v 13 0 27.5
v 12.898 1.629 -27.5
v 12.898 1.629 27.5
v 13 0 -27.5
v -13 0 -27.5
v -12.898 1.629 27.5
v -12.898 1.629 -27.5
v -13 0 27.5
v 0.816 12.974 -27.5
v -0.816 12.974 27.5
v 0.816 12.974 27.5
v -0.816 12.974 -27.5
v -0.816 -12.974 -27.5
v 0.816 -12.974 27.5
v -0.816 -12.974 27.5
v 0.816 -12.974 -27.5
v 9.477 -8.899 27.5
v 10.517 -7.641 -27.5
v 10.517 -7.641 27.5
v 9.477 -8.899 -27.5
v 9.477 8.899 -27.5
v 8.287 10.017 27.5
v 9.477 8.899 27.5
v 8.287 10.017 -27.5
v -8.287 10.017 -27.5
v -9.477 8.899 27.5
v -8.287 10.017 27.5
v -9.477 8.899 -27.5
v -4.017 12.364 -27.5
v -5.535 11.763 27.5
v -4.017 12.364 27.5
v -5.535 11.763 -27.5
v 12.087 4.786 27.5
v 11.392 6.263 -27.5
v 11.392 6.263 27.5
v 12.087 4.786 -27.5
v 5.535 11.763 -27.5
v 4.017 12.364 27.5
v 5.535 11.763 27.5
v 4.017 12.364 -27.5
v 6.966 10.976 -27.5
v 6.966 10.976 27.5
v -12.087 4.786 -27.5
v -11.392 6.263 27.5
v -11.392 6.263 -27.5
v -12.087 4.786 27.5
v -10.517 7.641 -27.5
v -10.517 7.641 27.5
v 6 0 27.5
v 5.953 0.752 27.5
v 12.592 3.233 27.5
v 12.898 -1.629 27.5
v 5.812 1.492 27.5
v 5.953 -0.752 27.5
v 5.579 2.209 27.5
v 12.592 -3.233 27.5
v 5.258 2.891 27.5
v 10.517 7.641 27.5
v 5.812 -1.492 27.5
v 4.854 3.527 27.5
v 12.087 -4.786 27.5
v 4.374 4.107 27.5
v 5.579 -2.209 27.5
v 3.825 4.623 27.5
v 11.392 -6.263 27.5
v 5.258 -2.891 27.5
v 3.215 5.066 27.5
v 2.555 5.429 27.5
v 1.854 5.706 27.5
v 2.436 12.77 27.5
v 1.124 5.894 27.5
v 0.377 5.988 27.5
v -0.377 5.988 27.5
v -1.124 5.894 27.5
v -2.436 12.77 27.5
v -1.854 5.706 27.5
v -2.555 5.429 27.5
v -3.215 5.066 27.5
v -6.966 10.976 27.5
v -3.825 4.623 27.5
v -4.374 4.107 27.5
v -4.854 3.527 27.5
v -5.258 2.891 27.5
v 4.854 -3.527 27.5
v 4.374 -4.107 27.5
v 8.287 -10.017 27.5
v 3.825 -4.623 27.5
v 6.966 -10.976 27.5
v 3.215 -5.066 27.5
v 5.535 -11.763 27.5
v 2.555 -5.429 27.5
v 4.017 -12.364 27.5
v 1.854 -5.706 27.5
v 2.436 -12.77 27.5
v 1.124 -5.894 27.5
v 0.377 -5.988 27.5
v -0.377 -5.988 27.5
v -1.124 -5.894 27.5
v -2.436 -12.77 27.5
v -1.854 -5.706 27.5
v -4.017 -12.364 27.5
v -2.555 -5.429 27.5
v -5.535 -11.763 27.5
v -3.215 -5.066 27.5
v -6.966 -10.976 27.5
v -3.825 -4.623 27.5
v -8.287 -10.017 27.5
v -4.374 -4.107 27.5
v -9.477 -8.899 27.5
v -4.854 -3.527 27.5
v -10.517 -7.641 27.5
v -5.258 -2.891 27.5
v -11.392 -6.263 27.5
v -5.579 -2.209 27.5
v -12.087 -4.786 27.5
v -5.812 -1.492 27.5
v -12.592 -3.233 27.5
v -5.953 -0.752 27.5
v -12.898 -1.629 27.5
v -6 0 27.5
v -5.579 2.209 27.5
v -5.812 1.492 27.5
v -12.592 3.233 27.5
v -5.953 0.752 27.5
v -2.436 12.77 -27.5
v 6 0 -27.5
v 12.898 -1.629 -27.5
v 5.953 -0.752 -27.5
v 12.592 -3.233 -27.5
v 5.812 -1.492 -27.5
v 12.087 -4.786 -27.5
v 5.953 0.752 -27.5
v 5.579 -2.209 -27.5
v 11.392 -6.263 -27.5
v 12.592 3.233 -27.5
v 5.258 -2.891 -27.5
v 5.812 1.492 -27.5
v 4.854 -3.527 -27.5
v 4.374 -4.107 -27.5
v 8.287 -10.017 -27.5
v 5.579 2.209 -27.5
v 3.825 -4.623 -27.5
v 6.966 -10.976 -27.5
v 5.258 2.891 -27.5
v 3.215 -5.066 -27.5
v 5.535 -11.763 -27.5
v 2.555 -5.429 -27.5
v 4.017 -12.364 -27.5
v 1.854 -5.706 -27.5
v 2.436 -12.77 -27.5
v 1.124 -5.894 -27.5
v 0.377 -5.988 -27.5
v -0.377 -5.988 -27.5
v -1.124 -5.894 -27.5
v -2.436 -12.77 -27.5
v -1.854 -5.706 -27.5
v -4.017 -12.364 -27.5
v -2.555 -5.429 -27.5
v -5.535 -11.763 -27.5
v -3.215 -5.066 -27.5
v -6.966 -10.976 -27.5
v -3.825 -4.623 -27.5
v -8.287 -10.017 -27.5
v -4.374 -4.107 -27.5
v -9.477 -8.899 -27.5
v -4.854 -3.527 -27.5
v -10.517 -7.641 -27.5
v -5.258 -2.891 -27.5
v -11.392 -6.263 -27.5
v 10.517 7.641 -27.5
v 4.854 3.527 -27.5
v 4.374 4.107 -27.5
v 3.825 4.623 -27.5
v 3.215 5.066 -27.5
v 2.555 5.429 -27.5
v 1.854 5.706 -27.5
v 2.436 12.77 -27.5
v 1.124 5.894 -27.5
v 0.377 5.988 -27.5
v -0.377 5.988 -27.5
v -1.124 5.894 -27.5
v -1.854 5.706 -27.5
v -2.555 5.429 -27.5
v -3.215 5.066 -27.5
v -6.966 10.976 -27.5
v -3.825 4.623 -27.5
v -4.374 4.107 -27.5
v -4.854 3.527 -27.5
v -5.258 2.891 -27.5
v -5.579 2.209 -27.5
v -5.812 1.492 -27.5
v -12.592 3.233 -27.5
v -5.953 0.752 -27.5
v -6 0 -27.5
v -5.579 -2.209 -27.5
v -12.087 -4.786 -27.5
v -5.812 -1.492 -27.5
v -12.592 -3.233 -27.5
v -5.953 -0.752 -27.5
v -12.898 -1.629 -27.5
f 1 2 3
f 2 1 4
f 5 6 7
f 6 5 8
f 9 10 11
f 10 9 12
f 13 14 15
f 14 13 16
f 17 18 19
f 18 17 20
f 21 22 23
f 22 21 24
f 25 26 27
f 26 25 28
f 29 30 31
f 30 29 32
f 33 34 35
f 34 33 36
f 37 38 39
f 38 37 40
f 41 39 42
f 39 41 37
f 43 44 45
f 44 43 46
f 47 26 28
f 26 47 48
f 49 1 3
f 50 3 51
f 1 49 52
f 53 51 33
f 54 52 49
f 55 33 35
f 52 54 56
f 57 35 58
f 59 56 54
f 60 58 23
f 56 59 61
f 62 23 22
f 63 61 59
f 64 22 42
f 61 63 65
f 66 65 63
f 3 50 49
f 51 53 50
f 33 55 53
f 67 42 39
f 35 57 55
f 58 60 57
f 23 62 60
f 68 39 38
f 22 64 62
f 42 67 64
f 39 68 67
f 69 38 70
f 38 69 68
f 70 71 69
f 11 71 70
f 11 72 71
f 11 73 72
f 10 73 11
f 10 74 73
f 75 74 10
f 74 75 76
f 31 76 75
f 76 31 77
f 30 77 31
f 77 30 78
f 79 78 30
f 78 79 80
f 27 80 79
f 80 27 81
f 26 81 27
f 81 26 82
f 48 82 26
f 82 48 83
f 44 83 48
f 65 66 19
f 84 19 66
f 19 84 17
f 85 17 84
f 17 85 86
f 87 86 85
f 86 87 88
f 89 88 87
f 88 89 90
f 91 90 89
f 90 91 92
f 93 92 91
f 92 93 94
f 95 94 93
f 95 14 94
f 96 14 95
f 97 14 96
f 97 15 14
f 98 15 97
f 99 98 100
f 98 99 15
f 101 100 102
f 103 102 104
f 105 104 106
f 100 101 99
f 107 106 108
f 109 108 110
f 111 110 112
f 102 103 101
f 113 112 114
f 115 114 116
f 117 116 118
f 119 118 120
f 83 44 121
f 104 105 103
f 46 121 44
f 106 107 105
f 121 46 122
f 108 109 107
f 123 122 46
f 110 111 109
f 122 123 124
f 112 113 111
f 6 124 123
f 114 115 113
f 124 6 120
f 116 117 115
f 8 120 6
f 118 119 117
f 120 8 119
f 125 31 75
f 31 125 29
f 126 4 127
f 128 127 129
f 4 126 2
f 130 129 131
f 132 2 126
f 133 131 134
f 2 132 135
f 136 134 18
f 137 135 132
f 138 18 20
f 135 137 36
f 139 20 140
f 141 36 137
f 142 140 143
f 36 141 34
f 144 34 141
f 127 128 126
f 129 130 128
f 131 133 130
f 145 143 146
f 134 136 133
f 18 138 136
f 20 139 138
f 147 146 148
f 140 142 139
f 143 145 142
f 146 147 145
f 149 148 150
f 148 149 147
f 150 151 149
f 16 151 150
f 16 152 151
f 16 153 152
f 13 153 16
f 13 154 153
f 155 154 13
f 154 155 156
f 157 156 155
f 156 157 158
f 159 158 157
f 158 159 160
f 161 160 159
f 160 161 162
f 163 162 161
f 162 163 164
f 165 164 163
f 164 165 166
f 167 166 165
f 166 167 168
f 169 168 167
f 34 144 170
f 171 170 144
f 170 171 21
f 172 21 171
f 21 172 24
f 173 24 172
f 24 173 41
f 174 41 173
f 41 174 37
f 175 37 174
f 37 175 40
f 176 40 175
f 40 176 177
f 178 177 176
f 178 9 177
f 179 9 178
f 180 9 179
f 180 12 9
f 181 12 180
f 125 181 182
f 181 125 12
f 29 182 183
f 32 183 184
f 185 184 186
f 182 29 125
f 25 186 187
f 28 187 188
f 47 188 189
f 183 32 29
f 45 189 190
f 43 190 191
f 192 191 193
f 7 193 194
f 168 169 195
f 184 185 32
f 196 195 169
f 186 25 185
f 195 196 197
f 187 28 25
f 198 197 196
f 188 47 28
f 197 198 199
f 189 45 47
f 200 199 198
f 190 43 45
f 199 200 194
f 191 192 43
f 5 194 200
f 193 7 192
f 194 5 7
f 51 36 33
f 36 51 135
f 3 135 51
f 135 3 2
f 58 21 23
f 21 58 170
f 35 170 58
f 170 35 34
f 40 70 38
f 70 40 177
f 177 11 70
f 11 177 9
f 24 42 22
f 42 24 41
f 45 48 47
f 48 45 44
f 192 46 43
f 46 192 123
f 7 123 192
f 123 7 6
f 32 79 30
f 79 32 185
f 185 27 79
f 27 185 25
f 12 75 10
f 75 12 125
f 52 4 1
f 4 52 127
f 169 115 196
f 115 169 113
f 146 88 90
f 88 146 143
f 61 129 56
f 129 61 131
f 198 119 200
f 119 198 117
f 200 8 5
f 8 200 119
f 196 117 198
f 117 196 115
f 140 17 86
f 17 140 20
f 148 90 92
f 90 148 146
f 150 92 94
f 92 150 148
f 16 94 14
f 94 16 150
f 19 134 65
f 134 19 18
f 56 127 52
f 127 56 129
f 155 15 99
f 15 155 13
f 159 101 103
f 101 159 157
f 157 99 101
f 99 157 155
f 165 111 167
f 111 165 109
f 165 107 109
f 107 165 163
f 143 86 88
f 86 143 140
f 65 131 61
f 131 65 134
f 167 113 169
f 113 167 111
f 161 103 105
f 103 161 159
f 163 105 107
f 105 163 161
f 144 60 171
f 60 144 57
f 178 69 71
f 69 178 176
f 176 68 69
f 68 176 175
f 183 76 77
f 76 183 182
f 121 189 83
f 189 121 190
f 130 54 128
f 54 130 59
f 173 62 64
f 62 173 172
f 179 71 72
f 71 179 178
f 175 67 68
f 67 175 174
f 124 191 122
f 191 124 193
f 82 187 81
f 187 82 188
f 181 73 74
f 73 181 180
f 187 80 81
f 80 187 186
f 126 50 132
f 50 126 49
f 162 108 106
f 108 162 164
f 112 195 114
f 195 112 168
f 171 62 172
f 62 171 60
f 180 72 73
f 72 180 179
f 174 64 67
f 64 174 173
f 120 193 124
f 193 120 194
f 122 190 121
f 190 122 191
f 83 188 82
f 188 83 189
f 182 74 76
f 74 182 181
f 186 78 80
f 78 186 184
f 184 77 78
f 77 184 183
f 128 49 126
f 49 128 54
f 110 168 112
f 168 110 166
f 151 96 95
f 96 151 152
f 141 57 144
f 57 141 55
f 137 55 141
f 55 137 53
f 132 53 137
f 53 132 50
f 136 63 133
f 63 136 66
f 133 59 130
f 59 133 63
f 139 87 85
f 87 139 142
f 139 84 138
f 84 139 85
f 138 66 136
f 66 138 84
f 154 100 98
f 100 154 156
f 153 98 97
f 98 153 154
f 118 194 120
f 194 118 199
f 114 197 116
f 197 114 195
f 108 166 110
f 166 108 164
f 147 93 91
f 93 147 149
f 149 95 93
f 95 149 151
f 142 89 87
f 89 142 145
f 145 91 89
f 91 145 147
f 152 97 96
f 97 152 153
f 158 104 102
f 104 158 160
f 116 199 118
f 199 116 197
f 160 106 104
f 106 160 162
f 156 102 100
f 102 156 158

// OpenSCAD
$fn = 50;


difference() {
	union() {
		translate(v = [0, 0, -27.5000000000]) {
			cylinder(h = 55, r = 13.0000000000);
		}
	}
	union() {
		translate(v = [0, 0, -100.0000000000]) {
			cylinder(h = 200, r = 6);
		}
	}
}
